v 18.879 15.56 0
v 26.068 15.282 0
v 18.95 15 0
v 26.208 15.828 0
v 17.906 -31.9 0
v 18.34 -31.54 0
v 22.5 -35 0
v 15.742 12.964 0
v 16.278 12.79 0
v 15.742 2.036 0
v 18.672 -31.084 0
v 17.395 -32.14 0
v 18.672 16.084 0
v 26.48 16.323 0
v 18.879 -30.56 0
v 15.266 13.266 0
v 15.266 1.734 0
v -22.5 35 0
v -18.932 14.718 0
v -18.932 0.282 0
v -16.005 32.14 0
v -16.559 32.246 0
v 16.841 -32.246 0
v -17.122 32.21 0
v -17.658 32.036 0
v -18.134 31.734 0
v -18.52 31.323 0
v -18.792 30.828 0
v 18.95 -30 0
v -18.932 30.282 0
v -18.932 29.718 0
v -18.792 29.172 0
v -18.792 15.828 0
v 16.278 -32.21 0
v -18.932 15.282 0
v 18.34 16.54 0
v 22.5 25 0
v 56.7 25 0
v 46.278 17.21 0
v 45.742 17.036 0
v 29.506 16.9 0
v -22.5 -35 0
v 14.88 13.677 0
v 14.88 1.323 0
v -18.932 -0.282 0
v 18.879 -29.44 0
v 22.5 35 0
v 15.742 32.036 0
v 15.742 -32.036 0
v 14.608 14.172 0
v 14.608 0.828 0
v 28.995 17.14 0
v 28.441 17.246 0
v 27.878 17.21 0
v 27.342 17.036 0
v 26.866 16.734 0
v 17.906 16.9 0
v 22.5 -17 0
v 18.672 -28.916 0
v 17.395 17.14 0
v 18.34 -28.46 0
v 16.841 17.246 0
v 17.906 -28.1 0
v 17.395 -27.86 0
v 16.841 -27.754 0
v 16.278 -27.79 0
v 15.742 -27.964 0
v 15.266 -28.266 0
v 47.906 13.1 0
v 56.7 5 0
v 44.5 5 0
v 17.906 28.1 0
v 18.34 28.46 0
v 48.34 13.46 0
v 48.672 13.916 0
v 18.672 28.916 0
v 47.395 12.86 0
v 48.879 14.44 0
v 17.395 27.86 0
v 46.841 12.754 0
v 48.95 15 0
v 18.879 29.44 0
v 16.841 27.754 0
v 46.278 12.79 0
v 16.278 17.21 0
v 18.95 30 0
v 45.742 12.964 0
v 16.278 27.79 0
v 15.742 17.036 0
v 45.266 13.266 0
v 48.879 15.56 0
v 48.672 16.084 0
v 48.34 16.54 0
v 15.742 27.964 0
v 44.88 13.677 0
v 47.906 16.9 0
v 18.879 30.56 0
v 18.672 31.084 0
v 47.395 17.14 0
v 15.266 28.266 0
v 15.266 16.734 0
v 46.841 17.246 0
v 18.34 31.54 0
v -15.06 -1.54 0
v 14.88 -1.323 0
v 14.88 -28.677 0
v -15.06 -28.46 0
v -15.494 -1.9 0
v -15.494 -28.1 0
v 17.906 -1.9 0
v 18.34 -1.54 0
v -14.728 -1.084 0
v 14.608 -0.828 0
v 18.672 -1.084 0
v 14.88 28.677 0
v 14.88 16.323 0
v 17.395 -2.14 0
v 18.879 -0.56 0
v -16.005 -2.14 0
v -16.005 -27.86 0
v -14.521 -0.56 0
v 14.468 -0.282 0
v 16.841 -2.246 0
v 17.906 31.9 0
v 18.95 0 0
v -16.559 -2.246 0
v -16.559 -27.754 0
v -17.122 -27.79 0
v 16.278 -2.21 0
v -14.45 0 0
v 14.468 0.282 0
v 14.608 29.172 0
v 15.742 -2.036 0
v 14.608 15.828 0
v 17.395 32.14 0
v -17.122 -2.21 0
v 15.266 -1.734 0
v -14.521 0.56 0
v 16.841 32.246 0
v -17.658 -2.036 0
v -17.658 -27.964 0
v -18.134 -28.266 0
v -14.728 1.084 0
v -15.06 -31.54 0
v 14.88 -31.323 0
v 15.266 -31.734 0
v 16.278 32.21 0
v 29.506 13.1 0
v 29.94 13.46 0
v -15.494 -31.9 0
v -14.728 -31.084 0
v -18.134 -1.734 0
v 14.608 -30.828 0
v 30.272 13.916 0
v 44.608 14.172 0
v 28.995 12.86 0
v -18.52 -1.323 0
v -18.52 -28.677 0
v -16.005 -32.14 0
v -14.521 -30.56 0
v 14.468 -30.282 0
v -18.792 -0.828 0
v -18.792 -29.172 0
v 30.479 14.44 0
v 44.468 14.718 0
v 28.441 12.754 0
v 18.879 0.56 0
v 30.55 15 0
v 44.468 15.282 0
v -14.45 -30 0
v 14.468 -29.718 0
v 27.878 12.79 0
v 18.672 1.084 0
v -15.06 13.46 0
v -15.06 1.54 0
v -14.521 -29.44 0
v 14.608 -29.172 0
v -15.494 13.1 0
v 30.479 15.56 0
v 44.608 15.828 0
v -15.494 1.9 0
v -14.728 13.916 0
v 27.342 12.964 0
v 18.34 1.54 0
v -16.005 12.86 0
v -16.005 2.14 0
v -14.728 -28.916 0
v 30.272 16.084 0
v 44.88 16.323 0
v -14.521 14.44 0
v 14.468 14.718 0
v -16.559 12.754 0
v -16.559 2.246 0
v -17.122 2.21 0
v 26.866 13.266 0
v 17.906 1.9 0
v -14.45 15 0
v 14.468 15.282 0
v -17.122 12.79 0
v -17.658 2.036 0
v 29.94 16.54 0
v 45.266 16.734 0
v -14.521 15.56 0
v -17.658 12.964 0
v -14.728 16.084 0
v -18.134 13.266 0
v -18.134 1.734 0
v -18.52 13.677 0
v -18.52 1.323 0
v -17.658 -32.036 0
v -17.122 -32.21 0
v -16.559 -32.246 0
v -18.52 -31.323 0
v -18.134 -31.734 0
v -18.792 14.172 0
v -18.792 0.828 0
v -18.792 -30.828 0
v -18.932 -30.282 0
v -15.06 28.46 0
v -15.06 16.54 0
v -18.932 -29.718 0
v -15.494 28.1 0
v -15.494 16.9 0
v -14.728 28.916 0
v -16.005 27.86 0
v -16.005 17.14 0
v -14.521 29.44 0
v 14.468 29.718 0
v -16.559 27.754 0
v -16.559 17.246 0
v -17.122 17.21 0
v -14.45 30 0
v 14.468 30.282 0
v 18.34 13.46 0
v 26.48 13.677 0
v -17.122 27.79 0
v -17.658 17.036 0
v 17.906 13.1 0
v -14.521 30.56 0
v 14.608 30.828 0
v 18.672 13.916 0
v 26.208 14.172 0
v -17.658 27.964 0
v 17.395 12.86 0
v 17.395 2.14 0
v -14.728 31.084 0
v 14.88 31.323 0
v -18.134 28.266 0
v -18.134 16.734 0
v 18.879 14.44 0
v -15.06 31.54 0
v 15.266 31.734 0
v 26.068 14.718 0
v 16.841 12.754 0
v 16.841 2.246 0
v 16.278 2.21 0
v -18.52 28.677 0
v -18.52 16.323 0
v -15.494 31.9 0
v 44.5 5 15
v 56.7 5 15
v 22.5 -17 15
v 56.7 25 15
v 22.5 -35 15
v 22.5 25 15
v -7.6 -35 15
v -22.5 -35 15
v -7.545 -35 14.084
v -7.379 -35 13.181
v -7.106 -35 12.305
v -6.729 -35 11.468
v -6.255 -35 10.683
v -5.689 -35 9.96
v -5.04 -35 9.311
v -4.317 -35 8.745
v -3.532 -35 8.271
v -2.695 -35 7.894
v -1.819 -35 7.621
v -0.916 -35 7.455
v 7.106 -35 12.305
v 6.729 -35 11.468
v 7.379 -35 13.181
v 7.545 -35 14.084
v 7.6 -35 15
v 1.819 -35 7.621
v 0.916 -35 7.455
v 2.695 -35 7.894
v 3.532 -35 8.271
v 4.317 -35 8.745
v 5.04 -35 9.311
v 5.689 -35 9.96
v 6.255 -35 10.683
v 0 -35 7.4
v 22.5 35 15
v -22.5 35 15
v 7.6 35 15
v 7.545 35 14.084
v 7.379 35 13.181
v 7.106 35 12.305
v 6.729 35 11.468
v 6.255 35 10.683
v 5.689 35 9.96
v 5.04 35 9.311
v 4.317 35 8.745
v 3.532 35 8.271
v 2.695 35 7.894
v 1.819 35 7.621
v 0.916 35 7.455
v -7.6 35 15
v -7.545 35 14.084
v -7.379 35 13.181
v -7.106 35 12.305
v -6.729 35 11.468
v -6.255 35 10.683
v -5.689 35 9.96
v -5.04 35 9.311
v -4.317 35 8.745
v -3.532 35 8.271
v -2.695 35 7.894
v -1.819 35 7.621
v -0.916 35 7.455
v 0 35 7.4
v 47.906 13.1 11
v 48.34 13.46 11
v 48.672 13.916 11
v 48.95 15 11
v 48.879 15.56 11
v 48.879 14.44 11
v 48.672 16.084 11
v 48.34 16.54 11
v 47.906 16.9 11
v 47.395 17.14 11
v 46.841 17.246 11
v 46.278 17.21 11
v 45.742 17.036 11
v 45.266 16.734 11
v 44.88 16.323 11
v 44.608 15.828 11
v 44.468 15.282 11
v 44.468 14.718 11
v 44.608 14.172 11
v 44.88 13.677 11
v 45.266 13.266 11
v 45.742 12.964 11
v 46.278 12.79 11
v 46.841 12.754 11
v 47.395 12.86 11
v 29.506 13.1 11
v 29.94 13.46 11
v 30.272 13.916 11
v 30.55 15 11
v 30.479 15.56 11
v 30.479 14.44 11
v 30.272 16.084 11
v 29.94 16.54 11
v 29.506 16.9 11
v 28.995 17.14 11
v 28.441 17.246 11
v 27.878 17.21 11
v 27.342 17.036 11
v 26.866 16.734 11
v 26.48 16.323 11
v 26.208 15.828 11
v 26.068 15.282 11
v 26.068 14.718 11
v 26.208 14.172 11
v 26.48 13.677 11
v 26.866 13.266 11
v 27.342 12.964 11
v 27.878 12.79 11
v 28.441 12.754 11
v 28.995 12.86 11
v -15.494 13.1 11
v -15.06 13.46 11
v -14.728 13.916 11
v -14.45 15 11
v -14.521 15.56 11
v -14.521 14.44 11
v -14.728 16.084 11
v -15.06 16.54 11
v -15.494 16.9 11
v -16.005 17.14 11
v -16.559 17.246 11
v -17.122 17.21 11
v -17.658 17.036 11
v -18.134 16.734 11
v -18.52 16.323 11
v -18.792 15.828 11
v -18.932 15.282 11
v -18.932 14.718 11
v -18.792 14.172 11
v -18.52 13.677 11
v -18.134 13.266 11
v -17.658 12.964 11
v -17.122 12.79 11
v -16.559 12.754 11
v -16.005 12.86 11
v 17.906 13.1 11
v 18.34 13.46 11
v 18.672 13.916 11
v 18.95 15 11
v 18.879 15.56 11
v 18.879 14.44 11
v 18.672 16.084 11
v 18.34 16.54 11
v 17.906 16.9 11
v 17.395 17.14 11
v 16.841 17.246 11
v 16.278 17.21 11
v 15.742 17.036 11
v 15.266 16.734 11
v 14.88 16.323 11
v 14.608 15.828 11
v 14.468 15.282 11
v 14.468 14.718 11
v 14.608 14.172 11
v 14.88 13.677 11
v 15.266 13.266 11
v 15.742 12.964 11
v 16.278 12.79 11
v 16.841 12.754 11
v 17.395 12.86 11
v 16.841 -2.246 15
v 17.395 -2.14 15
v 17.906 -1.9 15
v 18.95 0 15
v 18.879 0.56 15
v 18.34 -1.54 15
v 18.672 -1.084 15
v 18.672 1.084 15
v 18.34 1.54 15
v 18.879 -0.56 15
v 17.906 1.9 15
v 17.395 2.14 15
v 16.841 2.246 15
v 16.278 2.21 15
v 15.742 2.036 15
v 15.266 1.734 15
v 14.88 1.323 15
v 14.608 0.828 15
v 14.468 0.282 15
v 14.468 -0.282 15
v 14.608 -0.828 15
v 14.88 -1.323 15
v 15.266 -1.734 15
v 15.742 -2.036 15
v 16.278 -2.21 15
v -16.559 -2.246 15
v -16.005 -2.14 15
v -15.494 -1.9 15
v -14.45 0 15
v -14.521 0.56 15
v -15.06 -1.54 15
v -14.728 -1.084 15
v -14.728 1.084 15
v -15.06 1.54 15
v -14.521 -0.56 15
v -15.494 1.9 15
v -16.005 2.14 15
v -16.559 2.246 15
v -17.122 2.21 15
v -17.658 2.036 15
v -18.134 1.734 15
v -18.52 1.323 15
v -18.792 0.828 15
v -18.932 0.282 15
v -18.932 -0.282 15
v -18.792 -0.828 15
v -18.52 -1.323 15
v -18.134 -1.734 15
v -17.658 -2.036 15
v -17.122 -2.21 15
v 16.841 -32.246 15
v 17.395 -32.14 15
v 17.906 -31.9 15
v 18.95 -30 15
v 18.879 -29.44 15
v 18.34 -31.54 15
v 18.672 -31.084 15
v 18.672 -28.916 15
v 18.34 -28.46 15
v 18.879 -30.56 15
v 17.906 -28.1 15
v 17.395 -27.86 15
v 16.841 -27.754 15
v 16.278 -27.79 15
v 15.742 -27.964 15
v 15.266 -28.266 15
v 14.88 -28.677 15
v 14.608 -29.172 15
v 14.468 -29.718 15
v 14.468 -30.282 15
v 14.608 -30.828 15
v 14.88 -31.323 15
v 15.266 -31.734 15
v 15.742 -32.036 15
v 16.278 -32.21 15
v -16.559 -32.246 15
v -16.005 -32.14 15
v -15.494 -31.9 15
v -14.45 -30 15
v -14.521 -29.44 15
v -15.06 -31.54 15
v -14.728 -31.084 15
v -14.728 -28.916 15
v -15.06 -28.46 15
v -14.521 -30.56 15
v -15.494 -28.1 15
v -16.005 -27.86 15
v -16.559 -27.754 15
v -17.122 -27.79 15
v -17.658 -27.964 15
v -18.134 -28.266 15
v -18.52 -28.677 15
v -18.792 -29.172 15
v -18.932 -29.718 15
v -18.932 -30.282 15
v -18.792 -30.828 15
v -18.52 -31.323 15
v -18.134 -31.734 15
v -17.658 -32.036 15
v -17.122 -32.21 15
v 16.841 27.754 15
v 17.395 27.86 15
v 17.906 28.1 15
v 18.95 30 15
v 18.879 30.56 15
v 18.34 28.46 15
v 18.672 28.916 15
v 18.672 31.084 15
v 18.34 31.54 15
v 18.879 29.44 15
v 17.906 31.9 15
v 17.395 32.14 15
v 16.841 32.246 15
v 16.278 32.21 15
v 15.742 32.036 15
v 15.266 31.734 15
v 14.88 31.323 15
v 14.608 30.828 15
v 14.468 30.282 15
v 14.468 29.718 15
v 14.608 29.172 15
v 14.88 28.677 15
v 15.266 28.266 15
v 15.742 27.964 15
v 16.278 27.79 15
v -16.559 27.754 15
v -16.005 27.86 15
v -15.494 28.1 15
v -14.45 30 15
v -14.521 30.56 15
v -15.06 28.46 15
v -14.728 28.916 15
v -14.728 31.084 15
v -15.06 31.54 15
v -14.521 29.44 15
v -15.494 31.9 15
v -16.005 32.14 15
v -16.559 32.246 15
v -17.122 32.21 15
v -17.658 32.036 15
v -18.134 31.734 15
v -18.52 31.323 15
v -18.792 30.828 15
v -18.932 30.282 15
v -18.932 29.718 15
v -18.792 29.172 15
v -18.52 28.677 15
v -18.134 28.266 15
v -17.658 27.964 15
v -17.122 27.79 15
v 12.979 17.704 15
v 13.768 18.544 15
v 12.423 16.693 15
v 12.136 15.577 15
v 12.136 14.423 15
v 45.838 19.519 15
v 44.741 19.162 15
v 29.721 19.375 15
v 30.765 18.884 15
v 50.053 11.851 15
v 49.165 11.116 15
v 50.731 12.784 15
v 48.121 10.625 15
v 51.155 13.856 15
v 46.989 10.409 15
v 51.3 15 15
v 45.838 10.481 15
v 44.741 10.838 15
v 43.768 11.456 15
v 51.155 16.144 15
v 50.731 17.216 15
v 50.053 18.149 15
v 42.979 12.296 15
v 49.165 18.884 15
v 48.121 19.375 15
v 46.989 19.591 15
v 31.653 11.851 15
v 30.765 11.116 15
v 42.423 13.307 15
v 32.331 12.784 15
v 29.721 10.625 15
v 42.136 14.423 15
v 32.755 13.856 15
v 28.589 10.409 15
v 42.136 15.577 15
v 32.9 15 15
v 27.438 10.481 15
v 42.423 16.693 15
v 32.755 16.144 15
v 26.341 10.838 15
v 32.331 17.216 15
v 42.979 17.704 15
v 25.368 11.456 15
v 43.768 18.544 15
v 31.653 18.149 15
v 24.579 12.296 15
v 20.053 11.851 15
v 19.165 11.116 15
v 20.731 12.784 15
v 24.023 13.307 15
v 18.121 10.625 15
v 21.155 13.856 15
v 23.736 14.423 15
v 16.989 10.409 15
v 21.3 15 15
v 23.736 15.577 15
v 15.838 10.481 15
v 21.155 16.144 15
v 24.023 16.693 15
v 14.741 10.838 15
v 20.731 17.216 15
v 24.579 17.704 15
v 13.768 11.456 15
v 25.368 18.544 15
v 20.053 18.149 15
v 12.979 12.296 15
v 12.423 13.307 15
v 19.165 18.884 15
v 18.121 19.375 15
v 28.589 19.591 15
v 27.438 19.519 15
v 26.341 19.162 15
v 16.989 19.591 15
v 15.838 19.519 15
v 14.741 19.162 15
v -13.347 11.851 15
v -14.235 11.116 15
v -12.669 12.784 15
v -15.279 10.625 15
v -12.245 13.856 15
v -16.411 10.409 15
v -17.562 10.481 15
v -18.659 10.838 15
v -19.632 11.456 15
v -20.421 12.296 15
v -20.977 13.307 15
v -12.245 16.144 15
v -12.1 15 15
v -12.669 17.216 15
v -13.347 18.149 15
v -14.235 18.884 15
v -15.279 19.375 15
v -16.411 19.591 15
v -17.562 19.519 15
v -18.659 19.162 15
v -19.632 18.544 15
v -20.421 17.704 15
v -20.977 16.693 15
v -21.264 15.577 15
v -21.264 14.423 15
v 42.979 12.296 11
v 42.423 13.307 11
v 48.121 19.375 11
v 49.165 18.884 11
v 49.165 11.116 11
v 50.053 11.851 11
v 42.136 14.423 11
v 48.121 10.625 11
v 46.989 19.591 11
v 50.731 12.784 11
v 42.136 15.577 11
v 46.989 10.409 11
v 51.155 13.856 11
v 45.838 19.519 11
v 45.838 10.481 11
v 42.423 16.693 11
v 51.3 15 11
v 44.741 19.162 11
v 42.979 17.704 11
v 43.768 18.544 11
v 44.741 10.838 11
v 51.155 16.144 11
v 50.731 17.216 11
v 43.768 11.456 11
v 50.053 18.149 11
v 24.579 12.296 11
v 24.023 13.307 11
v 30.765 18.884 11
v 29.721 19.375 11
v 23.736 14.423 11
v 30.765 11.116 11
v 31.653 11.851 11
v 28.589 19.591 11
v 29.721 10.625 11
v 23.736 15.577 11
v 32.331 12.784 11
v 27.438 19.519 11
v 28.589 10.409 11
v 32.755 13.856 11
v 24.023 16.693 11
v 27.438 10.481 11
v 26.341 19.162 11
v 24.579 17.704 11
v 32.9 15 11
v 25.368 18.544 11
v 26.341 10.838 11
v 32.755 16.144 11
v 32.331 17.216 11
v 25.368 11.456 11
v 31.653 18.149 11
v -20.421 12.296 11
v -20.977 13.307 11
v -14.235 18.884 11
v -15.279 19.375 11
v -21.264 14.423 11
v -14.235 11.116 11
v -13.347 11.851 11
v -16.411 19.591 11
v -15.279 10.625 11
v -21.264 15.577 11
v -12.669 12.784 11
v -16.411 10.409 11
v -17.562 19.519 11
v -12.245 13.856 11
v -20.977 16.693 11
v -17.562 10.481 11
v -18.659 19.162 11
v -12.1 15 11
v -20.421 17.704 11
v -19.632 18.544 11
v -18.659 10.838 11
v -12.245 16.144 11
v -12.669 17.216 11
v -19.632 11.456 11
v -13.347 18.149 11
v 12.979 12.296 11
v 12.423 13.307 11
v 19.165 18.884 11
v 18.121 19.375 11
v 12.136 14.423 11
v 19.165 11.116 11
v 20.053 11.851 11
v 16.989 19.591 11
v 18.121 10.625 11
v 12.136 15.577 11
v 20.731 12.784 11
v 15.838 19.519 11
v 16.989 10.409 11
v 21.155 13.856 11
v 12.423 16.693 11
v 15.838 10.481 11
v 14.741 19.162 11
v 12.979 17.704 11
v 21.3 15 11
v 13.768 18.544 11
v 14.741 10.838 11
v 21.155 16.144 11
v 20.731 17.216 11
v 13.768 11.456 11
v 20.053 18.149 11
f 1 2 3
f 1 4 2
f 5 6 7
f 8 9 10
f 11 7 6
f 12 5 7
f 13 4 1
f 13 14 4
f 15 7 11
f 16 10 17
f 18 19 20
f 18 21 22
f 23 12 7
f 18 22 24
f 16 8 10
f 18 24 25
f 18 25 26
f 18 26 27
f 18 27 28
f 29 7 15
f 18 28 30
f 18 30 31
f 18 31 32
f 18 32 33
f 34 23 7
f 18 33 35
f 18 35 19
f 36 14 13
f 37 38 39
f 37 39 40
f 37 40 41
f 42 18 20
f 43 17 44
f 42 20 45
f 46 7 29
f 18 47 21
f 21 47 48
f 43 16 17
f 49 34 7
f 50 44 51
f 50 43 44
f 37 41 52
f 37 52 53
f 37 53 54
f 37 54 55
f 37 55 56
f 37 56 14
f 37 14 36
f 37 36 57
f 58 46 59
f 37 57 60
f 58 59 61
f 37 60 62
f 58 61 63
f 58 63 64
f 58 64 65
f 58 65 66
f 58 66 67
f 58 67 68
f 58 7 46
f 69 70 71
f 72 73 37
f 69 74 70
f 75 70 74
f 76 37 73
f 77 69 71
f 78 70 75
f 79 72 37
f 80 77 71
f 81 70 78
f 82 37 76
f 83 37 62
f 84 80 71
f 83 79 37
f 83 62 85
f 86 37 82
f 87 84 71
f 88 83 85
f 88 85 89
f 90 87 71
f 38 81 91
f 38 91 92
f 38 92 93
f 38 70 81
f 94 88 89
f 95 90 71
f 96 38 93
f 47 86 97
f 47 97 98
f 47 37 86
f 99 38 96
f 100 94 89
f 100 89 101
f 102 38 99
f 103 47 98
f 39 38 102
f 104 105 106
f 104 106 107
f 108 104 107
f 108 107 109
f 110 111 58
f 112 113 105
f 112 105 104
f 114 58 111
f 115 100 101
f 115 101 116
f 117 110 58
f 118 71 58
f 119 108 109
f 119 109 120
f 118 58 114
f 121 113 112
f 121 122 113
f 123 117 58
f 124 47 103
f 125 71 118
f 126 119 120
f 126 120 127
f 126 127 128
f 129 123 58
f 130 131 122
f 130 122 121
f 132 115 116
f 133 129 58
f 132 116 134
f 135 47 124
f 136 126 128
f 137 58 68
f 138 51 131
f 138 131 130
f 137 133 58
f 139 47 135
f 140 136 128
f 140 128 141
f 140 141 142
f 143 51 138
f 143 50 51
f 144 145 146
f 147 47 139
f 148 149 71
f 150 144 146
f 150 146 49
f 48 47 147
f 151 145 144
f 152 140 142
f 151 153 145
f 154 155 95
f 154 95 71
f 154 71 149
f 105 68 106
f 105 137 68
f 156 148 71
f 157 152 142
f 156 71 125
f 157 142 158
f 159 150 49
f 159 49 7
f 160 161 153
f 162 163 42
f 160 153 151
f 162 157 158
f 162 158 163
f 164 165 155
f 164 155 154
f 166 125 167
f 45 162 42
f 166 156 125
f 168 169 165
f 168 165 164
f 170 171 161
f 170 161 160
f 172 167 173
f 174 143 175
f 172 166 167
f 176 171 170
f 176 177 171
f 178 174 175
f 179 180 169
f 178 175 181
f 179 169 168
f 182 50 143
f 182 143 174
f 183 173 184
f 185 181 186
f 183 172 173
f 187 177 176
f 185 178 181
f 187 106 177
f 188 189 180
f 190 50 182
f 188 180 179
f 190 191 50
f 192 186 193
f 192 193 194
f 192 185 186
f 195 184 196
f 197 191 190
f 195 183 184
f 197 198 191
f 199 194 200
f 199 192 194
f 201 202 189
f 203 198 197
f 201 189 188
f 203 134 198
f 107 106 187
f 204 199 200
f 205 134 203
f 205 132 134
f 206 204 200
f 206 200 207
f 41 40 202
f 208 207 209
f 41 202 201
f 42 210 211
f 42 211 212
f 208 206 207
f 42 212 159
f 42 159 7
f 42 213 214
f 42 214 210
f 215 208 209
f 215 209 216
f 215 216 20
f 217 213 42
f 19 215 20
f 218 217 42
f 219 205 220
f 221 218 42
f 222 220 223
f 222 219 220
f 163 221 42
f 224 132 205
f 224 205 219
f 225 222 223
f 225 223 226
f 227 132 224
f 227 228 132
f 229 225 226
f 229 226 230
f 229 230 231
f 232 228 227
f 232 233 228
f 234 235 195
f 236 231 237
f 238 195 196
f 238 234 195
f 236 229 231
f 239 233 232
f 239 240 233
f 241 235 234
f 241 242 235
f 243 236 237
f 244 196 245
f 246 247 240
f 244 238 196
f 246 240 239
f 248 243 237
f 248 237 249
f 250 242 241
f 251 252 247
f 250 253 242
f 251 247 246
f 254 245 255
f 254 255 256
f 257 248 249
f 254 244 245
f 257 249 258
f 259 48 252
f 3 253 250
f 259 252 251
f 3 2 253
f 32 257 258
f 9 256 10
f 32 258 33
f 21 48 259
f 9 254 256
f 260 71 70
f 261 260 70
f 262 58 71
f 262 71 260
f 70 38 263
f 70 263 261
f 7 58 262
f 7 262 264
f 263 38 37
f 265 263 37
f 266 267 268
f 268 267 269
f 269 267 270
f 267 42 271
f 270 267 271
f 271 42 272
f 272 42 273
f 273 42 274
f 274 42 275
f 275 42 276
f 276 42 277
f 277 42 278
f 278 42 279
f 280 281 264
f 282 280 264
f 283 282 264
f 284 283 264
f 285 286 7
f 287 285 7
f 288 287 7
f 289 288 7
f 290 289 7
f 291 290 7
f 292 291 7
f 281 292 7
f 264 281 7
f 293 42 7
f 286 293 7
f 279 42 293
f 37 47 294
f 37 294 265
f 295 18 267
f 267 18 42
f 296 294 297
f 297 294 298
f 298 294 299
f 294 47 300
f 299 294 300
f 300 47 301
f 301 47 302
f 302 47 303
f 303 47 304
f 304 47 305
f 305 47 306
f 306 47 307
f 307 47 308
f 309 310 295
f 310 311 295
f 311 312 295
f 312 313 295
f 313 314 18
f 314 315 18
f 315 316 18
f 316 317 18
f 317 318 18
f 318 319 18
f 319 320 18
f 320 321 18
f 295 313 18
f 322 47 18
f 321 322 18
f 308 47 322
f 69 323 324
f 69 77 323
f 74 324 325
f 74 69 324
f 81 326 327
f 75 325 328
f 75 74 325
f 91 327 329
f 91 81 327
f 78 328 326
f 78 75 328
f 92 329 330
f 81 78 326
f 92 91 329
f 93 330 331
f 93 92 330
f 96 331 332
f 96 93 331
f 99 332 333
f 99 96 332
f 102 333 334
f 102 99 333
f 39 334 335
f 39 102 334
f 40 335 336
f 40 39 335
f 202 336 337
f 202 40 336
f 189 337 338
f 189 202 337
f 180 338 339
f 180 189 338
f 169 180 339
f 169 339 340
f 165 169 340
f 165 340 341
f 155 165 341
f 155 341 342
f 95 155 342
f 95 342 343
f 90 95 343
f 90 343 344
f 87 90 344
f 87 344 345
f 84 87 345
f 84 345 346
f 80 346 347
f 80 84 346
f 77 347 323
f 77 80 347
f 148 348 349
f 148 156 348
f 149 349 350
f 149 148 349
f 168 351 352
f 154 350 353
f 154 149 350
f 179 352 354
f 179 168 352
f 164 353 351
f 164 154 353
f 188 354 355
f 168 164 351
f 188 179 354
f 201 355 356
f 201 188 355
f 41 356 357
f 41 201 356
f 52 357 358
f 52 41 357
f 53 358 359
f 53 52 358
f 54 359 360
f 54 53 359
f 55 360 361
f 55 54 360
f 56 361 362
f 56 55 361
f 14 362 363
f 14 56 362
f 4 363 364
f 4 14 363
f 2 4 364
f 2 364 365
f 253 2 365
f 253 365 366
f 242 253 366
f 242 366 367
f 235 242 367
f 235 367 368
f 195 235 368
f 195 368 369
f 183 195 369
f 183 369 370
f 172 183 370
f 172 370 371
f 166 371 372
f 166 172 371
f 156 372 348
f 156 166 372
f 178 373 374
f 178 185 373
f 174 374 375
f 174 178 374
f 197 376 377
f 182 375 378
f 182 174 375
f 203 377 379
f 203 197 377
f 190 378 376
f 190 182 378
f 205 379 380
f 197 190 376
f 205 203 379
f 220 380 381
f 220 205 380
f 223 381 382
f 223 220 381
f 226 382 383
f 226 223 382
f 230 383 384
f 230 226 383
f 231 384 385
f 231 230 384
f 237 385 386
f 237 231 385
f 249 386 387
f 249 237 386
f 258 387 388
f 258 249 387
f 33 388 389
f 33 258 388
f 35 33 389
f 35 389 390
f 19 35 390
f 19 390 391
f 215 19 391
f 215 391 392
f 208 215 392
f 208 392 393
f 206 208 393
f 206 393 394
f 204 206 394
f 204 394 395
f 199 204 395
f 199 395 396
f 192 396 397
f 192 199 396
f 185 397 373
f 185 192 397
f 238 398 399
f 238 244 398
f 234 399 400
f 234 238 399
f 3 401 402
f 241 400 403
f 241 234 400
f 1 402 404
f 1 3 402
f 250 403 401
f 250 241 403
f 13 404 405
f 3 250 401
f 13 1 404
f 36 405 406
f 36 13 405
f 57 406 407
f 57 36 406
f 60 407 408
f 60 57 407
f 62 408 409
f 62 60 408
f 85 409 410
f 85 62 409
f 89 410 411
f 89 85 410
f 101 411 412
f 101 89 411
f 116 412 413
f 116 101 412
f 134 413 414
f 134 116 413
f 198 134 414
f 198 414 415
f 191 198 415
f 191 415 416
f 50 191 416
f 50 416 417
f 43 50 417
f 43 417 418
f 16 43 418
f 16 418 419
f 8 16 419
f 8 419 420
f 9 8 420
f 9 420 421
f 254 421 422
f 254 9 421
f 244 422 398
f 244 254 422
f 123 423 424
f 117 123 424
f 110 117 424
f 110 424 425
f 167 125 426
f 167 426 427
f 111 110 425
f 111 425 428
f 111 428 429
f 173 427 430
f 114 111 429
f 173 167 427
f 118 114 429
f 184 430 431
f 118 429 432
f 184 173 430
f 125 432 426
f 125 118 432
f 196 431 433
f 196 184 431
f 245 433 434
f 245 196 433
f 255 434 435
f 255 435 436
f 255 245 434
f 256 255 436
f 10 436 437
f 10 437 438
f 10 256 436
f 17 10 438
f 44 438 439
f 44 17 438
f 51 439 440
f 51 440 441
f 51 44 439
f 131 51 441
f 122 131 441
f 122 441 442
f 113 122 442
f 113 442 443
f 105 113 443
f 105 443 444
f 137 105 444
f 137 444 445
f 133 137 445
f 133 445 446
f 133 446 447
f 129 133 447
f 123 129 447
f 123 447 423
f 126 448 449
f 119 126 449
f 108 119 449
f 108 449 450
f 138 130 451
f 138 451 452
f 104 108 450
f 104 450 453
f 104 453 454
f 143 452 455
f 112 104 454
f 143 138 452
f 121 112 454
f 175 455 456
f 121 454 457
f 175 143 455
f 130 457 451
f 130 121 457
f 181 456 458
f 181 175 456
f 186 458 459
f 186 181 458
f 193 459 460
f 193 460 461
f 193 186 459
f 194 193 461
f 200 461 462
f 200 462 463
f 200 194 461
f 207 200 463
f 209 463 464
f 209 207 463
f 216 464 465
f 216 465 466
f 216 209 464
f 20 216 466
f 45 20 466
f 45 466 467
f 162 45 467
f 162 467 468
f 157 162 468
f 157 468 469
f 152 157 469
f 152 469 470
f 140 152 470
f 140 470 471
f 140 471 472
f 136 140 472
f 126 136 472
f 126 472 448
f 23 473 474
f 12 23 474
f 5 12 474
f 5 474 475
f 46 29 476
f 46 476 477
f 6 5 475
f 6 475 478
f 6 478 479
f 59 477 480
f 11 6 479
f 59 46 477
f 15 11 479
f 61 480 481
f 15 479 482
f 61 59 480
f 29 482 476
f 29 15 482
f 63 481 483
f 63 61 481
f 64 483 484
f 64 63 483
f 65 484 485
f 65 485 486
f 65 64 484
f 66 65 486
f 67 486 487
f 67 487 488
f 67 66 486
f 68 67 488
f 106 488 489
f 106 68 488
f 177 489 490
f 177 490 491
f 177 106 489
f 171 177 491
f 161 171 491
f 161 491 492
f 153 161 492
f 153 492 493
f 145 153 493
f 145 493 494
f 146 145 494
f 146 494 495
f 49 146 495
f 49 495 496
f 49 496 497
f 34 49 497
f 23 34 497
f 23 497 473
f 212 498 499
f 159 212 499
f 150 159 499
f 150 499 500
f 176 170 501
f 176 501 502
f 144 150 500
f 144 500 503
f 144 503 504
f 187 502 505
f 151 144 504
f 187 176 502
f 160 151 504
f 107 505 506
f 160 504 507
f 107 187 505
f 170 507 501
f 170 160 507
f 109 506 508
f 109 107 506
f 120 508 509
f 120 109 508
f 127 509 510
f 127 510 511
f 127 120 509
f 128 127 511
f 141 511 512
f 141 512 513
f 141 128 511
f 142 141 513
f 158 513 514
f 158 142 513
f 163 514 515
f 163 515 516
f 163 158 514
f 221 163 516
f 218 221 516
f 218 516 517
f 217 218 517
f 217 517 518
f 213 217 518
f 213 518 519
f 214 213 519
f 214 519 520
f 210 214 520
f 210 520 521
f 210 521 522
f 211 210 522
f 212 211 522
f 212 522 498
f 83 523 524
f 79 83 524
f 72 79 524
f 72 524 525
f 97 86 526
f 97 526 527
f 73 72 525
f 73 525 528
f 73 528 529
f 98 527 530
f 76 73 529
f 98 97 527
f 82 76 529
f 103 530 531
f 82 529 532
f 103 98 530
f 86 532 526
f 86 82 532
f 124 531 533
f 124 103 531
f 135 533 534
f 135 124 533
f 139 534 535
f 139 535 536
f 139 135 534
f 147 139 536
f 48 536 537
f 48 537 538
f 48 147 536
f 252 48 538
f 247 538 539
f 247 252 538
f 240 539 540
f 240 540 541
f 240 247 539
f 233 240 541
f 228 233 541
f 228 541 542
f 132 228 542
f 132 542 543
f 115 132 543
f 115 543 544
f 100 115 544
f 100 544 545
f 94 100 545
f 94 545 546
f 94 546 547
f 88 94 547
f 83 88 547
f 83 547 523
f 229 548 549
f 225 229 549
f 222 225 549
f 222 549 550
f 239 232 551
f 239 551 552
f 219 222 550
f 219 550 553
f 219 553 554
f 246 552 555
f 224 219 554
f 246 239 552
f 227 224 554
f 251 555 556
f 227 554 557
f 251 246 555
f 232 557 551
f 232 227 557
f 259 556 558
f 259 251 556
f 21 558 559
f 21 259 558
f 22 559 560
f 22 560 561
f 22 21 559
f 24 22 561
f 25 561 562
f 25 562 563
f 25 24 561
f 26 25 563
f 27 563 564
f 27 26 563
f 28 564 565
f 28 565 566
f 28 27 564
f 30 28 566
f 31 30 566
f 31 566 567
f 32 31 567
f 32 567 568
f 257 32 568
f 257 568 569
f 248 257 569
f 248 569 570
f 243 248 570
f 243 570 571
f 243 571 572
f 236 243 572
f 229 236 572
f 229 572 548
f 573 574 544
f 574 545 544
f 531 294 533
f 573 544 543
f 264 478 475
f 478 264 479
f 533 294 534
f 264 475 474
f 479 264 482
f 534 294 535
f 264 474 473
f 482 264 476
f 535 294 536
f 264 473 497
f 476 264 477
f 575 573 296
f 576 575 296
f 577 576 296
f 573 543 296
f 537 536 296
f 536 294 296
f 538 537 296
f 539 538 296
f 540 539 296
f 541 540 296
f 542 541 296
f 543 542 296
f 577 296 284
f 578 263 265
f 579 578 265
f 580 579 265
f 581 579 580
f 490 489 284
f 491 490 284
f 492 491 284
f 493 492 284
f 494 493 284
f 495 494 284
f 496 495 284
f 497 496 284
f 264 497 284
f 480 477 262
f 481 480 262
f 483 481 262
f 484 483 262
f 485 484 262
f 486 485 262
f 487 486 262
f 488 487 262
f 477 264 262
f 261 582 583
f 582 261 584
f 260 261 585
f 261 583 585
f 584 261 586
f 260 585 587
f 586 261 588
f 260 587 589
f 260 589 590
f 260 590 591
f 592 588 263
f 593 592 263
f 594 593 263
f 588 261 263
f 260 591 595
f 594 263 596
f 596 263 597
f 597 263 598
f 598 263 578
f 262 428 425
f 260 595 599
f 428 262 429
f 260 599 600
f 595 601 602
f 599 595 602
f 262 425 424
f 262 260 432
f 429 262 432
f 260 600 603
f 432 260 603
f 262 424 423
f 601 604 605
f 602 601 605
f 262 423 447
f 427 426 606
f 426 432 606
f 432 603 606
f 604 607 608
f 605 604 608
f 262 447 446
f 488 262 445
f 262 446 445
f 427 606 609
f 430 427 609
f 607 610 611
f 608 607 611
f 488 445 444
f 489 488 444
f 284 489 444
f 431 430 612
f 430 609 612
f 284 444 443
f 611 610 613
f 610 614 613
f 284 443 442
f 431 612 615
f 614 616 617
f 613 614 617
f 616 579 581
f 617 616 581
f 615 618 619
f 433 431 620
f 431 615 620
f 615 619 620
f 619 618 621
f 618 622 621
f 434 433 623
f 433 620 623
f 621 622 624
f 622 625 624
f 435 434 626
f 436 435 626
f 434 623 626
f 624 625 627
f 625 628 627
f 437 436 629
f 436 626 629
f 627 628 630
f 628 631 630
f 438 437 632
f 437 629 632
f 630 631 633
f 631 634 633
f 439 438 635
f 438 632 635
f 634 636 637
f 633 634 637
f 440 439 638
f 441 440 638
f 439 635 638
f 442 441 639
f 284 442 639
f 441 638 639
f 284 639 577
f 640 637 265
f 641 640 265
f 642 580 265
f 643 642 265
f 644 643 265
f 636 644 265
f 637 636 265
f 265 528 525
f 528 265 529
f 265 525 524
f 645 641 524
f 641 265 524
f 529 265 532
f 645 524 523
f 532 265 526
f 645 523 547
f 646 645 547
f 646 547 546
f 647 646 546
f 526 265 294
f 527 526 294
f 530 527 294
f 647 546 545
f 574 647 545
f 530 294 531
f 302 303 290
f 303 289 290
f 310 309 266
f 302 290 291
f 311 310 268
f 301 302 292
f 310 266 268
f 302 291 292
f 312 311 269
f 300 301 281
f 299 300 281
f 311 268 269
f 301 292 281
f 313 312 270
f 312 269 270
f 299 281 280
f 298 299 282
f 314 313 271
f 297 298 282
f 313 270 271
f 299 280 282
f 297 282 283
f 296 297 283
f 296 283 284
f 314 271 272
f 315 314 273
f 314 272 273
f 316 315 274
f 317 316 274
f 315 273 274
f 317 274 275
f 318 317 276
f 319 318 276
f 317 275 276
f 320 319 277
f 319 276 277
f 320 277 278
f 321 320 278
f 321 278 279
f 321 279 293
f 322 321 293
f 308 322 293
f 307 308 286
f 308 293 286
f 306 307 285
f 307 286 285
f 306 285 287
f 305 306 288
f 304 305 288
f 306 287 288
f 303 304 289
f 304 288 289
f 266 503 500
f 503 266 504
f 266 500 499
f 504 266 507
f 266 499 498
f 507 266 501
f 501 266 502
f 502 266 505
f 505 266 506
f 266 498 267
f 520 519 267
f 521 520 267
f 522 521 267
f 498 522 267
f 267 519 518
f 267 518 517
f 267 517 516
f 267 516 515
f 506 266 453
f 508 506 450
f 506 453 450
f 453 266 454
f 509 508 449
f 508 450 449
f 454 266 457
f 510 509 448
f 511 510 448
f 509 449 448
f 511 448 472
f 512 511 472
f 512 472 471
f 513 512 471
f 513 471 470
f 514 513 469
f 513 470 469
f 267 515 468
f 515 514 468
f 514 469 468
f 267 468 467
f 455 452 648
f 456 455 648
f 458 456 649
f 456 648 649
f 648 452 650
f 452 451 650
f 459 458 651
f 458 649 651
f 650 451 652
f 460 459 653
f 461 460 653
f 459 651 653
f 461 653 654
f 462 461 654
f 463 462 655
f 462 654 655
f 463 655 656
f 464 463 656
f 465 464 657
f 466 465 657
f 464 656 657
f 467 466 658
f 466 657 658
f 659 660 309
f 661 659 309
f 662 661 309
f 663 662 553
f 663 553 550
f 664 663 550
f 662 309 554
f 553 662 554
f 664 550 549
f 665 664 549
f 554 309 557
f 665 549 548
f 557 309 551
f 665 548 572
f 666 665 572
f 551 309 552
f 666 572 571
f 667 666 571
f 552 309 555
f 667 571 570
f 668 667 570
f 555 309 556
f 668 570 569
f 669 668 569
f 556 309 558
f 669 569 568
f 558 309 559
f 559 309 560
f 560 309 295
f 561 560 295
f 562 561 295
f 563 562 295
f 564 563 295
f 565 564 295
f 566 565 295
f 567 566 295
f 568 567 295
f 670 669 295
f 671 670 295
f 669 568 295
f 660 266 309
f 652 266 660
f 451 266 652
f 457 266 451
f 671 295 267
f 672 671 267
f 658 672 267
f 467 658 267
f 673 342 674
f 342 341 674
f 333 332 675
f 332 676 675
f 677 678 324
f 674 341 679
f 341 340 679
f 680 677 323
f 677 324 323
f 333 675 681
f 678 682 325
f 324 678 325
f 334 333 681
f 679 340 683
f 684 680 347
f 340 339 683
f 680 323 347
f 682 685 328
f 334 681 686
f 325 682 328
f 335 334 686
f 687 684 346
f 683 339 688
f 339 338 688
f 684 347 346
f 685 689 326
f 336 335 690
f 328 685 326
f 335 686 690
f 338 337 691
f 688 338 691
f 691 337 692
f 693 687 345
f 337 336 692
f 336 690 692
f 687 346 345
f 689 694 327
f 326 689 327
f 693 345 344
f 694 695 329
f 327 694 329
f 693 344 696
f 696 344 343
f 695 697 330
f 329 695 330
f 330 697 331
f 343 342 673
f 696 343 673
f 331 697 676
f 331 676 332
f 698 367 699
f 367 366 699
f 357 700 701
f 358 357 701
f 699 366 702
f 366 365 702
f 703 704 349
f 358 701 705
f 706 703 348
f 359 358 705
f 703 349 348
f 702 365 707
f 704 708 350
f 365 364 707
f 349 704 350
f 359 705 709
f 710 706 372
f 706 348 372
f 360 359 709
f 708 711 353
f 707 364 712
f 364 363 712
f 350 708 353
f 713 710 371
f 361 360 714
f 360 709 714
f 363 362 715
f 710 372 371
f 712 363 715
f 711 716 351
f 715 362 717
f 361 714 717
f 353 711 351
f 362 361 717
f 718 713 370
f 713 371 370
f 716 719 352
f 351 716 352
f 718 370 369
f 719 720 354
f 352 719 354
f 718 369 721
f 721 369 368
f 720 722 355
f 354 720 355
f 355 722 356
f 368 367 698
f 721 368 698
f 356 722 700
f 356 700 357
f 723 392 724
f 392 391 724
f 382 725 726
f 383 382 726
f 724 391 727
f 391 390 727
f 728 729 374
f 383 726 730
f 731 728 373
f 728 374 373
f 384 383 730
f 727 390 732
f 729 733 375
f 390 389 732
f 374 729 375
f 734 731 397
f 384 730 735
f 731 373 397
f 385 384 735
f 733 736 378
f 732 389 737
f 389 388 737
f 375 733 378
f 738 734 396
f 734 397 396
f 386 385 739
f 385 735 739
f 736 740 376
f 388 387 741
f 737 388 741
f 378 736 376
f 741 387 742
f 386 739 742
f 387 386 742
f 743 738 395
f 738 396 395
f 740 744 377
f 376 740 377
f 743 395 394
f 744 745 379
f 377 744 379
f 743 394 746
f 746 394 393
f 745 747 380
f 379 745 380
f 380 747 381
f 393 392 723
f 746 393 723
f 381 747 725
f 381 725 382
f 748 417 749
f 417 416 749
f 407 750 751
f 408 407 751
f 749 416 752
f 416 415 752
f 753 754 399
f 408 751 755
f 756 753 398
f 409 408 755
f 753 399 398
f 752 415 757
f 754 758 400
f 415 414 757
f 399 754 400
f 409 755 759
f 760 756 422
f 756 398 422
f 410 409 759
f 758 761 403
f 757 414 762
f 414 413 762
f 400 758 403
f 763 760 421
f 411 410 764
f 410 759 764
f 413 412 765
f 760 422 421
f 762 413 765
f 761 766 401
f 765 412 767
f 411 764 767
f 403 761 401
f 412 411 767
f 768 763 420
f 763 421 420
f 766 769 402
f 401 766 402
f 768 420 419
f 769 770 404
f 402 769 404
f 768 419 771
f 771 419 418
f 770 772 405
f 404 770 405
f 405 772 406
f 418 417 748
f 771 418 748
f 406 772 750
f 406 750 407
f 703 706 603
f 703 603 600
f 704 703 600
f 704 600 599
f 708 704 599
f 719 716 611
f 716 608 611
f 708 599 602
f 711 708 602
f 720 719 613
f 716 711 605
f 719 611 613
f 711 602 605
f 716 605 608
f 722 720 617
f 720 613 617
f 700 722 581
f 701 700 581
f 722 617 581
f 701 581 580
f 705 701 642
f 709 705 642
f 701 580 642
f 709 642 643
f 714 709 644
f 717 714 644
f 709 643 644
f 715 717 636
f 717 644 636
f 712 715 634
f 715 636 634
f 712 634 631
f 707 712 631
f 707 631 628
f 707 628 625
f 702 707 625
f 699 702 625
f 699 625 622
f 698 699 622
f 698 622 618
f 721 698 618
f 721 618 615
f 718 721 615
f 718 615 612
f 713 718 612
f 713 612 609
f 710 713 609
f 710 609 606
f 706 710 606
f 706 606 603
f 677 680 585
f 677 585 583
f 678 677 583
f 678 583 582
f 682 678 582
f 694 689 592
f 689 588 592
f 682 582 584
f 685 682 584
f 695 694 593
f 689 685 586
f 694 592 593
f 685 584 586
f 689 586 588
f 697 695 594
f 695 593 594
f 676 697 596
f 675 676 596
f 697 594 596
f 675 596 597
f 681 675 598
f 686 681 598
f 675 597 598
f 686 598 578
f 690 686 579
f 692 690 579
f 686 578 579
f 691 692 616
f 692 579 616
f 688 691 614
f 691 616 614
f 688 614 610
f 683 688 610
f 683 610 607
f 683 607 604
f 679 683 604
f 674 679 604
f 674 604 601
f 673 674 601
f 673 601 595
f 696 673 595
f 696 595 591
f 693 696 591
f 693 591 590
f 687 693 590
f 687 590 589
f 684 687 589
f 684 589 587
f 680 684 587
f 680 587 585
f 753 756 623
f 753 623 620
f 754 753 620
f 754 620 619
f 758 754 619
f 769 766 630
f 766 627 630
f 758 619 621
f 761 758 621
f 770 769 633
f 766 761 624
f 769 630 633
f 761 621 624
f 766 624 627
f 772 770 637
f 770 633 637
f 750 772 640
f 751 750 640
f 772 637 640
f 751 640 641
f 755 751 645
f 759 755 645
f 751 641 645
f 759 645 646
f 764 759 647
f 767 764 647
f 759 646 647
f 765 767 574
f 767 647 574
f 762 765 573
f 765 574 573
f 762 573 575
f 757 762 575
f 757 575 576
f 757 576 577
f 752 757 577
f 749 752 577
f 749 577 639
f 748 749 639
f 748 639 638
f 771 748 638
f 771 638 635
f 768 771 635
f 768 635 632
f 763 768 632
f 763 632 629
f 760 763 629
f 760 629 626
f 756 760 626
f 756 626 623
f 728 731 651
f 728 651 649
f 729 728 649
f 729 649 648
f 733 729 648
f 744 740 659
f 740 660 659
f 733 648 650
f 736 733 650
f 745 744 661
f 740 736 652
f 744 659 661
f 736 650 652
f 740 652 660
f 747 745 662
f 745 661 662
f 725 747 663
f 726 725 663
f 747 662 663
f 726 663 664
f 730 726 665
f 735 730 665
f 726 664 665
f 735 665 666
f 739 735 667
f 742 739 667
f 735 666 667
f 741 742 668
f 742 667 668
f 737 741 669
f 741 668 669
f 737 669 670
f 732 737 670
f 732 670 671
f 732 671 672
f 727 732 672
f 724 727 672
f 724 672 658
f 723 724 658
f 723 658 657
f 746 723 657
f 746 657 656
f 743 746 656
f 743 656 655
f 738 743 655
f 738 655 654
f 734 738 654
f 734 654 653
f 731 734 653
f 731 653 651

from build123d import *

# Parameters (mm, degrees)
SKETCH_R        = 2.25
PAD_DEPTH       = 15
SKETCH001_R     = 7.6
POCKET_DEPTH    = 70.001
SKETCH002_R     = 4.6
POCKET001_DEPTH = 4
CHAMFER_SIZE    = 22


with BuildPart() as part:
    # Sketch → Pad (new body)
    with BuildSketch(Plane.XY):
        Polygon((-22.5, -35), (22.5, -35), (22.5, 5), (56.7, 5), (56.7, 25), (22.5, 25), (22.5, 35), (-22.5, 35), align=None)
        with Locations((-16.7, 30)):
            Circle(SKETCH_R, mode=Mode.SUBTRACT)
        with Locations((16.7, 30)):
            Circle(SKETCH_R, mode=Mode.SUBTRACT)
        with Locations((-16.7, -30)):
            Circle(SKETCH_R, mode=Mode.SUBTRACT)
        with Locations((16.7, -30)):
            Circle(SKETCH_R, mode=Mode.SUBTRACT)
        with Locations((-16.7, 0)):
            Circle(SKETCH_R, mode=Mode.SUBTRACT)
        with Locations((16.7, 0)):
            Circle(SKETCH_R, mode=Mode.SUBTRACT)
        with Locations((16.7, 15)):
            Circle(SKETCH_R, mode=Mode.SUBTRACT)
        with Locations((46.7, 15)):
            Circle(SKETCH_R, mode=Mode.SUBTRACT)
        with Locations((-16.7, 15)):
            Circle(SKETCH_R, mode=Mode.SUBTRACT)
        with Locations((28.3, 15)):
            Circle(SKETCH_R, mode=Mode.SUBTRACT)
    extrude(amount=PAD_DEPTH)

    # Sketch001 → Pocket (cut, through all)
    with BuildSketch(Plane.XZ.offset(35)):
        with Locations((0, 15)):
            Circle(SKETCH001_R)
    extrude(amount=-POCKET_DEPTH, mode=Mode.SUBTRACT)

    # Sketch002 → Pocket001 (cut)
    with BuildSketch(Plane.XY.offset(15)):
        with Locations((-16.7, 15)):
            Circle(SKETCH002_R)
        with Locations((16.7, 15)):
            Circle(SKETCH002_R)
        with Locations((28.3, 15)):
            Circle(SKETCH002_R)
        with Locations((46.7, 15)):
            Circle(SKETCH002_R)
    extrude(amount=-POCKET001_DEPTH, mode=Mode.SUBTRACT)

    # Chamfer
    chamfer_edges = [part.edges().sort_by_distance(p)[0] for p in [
        (22.5, 5, 7.5),
    ]]
    chamfer(chamfer_edges, length=CHAMFER_SIZE)


solid = part.part
